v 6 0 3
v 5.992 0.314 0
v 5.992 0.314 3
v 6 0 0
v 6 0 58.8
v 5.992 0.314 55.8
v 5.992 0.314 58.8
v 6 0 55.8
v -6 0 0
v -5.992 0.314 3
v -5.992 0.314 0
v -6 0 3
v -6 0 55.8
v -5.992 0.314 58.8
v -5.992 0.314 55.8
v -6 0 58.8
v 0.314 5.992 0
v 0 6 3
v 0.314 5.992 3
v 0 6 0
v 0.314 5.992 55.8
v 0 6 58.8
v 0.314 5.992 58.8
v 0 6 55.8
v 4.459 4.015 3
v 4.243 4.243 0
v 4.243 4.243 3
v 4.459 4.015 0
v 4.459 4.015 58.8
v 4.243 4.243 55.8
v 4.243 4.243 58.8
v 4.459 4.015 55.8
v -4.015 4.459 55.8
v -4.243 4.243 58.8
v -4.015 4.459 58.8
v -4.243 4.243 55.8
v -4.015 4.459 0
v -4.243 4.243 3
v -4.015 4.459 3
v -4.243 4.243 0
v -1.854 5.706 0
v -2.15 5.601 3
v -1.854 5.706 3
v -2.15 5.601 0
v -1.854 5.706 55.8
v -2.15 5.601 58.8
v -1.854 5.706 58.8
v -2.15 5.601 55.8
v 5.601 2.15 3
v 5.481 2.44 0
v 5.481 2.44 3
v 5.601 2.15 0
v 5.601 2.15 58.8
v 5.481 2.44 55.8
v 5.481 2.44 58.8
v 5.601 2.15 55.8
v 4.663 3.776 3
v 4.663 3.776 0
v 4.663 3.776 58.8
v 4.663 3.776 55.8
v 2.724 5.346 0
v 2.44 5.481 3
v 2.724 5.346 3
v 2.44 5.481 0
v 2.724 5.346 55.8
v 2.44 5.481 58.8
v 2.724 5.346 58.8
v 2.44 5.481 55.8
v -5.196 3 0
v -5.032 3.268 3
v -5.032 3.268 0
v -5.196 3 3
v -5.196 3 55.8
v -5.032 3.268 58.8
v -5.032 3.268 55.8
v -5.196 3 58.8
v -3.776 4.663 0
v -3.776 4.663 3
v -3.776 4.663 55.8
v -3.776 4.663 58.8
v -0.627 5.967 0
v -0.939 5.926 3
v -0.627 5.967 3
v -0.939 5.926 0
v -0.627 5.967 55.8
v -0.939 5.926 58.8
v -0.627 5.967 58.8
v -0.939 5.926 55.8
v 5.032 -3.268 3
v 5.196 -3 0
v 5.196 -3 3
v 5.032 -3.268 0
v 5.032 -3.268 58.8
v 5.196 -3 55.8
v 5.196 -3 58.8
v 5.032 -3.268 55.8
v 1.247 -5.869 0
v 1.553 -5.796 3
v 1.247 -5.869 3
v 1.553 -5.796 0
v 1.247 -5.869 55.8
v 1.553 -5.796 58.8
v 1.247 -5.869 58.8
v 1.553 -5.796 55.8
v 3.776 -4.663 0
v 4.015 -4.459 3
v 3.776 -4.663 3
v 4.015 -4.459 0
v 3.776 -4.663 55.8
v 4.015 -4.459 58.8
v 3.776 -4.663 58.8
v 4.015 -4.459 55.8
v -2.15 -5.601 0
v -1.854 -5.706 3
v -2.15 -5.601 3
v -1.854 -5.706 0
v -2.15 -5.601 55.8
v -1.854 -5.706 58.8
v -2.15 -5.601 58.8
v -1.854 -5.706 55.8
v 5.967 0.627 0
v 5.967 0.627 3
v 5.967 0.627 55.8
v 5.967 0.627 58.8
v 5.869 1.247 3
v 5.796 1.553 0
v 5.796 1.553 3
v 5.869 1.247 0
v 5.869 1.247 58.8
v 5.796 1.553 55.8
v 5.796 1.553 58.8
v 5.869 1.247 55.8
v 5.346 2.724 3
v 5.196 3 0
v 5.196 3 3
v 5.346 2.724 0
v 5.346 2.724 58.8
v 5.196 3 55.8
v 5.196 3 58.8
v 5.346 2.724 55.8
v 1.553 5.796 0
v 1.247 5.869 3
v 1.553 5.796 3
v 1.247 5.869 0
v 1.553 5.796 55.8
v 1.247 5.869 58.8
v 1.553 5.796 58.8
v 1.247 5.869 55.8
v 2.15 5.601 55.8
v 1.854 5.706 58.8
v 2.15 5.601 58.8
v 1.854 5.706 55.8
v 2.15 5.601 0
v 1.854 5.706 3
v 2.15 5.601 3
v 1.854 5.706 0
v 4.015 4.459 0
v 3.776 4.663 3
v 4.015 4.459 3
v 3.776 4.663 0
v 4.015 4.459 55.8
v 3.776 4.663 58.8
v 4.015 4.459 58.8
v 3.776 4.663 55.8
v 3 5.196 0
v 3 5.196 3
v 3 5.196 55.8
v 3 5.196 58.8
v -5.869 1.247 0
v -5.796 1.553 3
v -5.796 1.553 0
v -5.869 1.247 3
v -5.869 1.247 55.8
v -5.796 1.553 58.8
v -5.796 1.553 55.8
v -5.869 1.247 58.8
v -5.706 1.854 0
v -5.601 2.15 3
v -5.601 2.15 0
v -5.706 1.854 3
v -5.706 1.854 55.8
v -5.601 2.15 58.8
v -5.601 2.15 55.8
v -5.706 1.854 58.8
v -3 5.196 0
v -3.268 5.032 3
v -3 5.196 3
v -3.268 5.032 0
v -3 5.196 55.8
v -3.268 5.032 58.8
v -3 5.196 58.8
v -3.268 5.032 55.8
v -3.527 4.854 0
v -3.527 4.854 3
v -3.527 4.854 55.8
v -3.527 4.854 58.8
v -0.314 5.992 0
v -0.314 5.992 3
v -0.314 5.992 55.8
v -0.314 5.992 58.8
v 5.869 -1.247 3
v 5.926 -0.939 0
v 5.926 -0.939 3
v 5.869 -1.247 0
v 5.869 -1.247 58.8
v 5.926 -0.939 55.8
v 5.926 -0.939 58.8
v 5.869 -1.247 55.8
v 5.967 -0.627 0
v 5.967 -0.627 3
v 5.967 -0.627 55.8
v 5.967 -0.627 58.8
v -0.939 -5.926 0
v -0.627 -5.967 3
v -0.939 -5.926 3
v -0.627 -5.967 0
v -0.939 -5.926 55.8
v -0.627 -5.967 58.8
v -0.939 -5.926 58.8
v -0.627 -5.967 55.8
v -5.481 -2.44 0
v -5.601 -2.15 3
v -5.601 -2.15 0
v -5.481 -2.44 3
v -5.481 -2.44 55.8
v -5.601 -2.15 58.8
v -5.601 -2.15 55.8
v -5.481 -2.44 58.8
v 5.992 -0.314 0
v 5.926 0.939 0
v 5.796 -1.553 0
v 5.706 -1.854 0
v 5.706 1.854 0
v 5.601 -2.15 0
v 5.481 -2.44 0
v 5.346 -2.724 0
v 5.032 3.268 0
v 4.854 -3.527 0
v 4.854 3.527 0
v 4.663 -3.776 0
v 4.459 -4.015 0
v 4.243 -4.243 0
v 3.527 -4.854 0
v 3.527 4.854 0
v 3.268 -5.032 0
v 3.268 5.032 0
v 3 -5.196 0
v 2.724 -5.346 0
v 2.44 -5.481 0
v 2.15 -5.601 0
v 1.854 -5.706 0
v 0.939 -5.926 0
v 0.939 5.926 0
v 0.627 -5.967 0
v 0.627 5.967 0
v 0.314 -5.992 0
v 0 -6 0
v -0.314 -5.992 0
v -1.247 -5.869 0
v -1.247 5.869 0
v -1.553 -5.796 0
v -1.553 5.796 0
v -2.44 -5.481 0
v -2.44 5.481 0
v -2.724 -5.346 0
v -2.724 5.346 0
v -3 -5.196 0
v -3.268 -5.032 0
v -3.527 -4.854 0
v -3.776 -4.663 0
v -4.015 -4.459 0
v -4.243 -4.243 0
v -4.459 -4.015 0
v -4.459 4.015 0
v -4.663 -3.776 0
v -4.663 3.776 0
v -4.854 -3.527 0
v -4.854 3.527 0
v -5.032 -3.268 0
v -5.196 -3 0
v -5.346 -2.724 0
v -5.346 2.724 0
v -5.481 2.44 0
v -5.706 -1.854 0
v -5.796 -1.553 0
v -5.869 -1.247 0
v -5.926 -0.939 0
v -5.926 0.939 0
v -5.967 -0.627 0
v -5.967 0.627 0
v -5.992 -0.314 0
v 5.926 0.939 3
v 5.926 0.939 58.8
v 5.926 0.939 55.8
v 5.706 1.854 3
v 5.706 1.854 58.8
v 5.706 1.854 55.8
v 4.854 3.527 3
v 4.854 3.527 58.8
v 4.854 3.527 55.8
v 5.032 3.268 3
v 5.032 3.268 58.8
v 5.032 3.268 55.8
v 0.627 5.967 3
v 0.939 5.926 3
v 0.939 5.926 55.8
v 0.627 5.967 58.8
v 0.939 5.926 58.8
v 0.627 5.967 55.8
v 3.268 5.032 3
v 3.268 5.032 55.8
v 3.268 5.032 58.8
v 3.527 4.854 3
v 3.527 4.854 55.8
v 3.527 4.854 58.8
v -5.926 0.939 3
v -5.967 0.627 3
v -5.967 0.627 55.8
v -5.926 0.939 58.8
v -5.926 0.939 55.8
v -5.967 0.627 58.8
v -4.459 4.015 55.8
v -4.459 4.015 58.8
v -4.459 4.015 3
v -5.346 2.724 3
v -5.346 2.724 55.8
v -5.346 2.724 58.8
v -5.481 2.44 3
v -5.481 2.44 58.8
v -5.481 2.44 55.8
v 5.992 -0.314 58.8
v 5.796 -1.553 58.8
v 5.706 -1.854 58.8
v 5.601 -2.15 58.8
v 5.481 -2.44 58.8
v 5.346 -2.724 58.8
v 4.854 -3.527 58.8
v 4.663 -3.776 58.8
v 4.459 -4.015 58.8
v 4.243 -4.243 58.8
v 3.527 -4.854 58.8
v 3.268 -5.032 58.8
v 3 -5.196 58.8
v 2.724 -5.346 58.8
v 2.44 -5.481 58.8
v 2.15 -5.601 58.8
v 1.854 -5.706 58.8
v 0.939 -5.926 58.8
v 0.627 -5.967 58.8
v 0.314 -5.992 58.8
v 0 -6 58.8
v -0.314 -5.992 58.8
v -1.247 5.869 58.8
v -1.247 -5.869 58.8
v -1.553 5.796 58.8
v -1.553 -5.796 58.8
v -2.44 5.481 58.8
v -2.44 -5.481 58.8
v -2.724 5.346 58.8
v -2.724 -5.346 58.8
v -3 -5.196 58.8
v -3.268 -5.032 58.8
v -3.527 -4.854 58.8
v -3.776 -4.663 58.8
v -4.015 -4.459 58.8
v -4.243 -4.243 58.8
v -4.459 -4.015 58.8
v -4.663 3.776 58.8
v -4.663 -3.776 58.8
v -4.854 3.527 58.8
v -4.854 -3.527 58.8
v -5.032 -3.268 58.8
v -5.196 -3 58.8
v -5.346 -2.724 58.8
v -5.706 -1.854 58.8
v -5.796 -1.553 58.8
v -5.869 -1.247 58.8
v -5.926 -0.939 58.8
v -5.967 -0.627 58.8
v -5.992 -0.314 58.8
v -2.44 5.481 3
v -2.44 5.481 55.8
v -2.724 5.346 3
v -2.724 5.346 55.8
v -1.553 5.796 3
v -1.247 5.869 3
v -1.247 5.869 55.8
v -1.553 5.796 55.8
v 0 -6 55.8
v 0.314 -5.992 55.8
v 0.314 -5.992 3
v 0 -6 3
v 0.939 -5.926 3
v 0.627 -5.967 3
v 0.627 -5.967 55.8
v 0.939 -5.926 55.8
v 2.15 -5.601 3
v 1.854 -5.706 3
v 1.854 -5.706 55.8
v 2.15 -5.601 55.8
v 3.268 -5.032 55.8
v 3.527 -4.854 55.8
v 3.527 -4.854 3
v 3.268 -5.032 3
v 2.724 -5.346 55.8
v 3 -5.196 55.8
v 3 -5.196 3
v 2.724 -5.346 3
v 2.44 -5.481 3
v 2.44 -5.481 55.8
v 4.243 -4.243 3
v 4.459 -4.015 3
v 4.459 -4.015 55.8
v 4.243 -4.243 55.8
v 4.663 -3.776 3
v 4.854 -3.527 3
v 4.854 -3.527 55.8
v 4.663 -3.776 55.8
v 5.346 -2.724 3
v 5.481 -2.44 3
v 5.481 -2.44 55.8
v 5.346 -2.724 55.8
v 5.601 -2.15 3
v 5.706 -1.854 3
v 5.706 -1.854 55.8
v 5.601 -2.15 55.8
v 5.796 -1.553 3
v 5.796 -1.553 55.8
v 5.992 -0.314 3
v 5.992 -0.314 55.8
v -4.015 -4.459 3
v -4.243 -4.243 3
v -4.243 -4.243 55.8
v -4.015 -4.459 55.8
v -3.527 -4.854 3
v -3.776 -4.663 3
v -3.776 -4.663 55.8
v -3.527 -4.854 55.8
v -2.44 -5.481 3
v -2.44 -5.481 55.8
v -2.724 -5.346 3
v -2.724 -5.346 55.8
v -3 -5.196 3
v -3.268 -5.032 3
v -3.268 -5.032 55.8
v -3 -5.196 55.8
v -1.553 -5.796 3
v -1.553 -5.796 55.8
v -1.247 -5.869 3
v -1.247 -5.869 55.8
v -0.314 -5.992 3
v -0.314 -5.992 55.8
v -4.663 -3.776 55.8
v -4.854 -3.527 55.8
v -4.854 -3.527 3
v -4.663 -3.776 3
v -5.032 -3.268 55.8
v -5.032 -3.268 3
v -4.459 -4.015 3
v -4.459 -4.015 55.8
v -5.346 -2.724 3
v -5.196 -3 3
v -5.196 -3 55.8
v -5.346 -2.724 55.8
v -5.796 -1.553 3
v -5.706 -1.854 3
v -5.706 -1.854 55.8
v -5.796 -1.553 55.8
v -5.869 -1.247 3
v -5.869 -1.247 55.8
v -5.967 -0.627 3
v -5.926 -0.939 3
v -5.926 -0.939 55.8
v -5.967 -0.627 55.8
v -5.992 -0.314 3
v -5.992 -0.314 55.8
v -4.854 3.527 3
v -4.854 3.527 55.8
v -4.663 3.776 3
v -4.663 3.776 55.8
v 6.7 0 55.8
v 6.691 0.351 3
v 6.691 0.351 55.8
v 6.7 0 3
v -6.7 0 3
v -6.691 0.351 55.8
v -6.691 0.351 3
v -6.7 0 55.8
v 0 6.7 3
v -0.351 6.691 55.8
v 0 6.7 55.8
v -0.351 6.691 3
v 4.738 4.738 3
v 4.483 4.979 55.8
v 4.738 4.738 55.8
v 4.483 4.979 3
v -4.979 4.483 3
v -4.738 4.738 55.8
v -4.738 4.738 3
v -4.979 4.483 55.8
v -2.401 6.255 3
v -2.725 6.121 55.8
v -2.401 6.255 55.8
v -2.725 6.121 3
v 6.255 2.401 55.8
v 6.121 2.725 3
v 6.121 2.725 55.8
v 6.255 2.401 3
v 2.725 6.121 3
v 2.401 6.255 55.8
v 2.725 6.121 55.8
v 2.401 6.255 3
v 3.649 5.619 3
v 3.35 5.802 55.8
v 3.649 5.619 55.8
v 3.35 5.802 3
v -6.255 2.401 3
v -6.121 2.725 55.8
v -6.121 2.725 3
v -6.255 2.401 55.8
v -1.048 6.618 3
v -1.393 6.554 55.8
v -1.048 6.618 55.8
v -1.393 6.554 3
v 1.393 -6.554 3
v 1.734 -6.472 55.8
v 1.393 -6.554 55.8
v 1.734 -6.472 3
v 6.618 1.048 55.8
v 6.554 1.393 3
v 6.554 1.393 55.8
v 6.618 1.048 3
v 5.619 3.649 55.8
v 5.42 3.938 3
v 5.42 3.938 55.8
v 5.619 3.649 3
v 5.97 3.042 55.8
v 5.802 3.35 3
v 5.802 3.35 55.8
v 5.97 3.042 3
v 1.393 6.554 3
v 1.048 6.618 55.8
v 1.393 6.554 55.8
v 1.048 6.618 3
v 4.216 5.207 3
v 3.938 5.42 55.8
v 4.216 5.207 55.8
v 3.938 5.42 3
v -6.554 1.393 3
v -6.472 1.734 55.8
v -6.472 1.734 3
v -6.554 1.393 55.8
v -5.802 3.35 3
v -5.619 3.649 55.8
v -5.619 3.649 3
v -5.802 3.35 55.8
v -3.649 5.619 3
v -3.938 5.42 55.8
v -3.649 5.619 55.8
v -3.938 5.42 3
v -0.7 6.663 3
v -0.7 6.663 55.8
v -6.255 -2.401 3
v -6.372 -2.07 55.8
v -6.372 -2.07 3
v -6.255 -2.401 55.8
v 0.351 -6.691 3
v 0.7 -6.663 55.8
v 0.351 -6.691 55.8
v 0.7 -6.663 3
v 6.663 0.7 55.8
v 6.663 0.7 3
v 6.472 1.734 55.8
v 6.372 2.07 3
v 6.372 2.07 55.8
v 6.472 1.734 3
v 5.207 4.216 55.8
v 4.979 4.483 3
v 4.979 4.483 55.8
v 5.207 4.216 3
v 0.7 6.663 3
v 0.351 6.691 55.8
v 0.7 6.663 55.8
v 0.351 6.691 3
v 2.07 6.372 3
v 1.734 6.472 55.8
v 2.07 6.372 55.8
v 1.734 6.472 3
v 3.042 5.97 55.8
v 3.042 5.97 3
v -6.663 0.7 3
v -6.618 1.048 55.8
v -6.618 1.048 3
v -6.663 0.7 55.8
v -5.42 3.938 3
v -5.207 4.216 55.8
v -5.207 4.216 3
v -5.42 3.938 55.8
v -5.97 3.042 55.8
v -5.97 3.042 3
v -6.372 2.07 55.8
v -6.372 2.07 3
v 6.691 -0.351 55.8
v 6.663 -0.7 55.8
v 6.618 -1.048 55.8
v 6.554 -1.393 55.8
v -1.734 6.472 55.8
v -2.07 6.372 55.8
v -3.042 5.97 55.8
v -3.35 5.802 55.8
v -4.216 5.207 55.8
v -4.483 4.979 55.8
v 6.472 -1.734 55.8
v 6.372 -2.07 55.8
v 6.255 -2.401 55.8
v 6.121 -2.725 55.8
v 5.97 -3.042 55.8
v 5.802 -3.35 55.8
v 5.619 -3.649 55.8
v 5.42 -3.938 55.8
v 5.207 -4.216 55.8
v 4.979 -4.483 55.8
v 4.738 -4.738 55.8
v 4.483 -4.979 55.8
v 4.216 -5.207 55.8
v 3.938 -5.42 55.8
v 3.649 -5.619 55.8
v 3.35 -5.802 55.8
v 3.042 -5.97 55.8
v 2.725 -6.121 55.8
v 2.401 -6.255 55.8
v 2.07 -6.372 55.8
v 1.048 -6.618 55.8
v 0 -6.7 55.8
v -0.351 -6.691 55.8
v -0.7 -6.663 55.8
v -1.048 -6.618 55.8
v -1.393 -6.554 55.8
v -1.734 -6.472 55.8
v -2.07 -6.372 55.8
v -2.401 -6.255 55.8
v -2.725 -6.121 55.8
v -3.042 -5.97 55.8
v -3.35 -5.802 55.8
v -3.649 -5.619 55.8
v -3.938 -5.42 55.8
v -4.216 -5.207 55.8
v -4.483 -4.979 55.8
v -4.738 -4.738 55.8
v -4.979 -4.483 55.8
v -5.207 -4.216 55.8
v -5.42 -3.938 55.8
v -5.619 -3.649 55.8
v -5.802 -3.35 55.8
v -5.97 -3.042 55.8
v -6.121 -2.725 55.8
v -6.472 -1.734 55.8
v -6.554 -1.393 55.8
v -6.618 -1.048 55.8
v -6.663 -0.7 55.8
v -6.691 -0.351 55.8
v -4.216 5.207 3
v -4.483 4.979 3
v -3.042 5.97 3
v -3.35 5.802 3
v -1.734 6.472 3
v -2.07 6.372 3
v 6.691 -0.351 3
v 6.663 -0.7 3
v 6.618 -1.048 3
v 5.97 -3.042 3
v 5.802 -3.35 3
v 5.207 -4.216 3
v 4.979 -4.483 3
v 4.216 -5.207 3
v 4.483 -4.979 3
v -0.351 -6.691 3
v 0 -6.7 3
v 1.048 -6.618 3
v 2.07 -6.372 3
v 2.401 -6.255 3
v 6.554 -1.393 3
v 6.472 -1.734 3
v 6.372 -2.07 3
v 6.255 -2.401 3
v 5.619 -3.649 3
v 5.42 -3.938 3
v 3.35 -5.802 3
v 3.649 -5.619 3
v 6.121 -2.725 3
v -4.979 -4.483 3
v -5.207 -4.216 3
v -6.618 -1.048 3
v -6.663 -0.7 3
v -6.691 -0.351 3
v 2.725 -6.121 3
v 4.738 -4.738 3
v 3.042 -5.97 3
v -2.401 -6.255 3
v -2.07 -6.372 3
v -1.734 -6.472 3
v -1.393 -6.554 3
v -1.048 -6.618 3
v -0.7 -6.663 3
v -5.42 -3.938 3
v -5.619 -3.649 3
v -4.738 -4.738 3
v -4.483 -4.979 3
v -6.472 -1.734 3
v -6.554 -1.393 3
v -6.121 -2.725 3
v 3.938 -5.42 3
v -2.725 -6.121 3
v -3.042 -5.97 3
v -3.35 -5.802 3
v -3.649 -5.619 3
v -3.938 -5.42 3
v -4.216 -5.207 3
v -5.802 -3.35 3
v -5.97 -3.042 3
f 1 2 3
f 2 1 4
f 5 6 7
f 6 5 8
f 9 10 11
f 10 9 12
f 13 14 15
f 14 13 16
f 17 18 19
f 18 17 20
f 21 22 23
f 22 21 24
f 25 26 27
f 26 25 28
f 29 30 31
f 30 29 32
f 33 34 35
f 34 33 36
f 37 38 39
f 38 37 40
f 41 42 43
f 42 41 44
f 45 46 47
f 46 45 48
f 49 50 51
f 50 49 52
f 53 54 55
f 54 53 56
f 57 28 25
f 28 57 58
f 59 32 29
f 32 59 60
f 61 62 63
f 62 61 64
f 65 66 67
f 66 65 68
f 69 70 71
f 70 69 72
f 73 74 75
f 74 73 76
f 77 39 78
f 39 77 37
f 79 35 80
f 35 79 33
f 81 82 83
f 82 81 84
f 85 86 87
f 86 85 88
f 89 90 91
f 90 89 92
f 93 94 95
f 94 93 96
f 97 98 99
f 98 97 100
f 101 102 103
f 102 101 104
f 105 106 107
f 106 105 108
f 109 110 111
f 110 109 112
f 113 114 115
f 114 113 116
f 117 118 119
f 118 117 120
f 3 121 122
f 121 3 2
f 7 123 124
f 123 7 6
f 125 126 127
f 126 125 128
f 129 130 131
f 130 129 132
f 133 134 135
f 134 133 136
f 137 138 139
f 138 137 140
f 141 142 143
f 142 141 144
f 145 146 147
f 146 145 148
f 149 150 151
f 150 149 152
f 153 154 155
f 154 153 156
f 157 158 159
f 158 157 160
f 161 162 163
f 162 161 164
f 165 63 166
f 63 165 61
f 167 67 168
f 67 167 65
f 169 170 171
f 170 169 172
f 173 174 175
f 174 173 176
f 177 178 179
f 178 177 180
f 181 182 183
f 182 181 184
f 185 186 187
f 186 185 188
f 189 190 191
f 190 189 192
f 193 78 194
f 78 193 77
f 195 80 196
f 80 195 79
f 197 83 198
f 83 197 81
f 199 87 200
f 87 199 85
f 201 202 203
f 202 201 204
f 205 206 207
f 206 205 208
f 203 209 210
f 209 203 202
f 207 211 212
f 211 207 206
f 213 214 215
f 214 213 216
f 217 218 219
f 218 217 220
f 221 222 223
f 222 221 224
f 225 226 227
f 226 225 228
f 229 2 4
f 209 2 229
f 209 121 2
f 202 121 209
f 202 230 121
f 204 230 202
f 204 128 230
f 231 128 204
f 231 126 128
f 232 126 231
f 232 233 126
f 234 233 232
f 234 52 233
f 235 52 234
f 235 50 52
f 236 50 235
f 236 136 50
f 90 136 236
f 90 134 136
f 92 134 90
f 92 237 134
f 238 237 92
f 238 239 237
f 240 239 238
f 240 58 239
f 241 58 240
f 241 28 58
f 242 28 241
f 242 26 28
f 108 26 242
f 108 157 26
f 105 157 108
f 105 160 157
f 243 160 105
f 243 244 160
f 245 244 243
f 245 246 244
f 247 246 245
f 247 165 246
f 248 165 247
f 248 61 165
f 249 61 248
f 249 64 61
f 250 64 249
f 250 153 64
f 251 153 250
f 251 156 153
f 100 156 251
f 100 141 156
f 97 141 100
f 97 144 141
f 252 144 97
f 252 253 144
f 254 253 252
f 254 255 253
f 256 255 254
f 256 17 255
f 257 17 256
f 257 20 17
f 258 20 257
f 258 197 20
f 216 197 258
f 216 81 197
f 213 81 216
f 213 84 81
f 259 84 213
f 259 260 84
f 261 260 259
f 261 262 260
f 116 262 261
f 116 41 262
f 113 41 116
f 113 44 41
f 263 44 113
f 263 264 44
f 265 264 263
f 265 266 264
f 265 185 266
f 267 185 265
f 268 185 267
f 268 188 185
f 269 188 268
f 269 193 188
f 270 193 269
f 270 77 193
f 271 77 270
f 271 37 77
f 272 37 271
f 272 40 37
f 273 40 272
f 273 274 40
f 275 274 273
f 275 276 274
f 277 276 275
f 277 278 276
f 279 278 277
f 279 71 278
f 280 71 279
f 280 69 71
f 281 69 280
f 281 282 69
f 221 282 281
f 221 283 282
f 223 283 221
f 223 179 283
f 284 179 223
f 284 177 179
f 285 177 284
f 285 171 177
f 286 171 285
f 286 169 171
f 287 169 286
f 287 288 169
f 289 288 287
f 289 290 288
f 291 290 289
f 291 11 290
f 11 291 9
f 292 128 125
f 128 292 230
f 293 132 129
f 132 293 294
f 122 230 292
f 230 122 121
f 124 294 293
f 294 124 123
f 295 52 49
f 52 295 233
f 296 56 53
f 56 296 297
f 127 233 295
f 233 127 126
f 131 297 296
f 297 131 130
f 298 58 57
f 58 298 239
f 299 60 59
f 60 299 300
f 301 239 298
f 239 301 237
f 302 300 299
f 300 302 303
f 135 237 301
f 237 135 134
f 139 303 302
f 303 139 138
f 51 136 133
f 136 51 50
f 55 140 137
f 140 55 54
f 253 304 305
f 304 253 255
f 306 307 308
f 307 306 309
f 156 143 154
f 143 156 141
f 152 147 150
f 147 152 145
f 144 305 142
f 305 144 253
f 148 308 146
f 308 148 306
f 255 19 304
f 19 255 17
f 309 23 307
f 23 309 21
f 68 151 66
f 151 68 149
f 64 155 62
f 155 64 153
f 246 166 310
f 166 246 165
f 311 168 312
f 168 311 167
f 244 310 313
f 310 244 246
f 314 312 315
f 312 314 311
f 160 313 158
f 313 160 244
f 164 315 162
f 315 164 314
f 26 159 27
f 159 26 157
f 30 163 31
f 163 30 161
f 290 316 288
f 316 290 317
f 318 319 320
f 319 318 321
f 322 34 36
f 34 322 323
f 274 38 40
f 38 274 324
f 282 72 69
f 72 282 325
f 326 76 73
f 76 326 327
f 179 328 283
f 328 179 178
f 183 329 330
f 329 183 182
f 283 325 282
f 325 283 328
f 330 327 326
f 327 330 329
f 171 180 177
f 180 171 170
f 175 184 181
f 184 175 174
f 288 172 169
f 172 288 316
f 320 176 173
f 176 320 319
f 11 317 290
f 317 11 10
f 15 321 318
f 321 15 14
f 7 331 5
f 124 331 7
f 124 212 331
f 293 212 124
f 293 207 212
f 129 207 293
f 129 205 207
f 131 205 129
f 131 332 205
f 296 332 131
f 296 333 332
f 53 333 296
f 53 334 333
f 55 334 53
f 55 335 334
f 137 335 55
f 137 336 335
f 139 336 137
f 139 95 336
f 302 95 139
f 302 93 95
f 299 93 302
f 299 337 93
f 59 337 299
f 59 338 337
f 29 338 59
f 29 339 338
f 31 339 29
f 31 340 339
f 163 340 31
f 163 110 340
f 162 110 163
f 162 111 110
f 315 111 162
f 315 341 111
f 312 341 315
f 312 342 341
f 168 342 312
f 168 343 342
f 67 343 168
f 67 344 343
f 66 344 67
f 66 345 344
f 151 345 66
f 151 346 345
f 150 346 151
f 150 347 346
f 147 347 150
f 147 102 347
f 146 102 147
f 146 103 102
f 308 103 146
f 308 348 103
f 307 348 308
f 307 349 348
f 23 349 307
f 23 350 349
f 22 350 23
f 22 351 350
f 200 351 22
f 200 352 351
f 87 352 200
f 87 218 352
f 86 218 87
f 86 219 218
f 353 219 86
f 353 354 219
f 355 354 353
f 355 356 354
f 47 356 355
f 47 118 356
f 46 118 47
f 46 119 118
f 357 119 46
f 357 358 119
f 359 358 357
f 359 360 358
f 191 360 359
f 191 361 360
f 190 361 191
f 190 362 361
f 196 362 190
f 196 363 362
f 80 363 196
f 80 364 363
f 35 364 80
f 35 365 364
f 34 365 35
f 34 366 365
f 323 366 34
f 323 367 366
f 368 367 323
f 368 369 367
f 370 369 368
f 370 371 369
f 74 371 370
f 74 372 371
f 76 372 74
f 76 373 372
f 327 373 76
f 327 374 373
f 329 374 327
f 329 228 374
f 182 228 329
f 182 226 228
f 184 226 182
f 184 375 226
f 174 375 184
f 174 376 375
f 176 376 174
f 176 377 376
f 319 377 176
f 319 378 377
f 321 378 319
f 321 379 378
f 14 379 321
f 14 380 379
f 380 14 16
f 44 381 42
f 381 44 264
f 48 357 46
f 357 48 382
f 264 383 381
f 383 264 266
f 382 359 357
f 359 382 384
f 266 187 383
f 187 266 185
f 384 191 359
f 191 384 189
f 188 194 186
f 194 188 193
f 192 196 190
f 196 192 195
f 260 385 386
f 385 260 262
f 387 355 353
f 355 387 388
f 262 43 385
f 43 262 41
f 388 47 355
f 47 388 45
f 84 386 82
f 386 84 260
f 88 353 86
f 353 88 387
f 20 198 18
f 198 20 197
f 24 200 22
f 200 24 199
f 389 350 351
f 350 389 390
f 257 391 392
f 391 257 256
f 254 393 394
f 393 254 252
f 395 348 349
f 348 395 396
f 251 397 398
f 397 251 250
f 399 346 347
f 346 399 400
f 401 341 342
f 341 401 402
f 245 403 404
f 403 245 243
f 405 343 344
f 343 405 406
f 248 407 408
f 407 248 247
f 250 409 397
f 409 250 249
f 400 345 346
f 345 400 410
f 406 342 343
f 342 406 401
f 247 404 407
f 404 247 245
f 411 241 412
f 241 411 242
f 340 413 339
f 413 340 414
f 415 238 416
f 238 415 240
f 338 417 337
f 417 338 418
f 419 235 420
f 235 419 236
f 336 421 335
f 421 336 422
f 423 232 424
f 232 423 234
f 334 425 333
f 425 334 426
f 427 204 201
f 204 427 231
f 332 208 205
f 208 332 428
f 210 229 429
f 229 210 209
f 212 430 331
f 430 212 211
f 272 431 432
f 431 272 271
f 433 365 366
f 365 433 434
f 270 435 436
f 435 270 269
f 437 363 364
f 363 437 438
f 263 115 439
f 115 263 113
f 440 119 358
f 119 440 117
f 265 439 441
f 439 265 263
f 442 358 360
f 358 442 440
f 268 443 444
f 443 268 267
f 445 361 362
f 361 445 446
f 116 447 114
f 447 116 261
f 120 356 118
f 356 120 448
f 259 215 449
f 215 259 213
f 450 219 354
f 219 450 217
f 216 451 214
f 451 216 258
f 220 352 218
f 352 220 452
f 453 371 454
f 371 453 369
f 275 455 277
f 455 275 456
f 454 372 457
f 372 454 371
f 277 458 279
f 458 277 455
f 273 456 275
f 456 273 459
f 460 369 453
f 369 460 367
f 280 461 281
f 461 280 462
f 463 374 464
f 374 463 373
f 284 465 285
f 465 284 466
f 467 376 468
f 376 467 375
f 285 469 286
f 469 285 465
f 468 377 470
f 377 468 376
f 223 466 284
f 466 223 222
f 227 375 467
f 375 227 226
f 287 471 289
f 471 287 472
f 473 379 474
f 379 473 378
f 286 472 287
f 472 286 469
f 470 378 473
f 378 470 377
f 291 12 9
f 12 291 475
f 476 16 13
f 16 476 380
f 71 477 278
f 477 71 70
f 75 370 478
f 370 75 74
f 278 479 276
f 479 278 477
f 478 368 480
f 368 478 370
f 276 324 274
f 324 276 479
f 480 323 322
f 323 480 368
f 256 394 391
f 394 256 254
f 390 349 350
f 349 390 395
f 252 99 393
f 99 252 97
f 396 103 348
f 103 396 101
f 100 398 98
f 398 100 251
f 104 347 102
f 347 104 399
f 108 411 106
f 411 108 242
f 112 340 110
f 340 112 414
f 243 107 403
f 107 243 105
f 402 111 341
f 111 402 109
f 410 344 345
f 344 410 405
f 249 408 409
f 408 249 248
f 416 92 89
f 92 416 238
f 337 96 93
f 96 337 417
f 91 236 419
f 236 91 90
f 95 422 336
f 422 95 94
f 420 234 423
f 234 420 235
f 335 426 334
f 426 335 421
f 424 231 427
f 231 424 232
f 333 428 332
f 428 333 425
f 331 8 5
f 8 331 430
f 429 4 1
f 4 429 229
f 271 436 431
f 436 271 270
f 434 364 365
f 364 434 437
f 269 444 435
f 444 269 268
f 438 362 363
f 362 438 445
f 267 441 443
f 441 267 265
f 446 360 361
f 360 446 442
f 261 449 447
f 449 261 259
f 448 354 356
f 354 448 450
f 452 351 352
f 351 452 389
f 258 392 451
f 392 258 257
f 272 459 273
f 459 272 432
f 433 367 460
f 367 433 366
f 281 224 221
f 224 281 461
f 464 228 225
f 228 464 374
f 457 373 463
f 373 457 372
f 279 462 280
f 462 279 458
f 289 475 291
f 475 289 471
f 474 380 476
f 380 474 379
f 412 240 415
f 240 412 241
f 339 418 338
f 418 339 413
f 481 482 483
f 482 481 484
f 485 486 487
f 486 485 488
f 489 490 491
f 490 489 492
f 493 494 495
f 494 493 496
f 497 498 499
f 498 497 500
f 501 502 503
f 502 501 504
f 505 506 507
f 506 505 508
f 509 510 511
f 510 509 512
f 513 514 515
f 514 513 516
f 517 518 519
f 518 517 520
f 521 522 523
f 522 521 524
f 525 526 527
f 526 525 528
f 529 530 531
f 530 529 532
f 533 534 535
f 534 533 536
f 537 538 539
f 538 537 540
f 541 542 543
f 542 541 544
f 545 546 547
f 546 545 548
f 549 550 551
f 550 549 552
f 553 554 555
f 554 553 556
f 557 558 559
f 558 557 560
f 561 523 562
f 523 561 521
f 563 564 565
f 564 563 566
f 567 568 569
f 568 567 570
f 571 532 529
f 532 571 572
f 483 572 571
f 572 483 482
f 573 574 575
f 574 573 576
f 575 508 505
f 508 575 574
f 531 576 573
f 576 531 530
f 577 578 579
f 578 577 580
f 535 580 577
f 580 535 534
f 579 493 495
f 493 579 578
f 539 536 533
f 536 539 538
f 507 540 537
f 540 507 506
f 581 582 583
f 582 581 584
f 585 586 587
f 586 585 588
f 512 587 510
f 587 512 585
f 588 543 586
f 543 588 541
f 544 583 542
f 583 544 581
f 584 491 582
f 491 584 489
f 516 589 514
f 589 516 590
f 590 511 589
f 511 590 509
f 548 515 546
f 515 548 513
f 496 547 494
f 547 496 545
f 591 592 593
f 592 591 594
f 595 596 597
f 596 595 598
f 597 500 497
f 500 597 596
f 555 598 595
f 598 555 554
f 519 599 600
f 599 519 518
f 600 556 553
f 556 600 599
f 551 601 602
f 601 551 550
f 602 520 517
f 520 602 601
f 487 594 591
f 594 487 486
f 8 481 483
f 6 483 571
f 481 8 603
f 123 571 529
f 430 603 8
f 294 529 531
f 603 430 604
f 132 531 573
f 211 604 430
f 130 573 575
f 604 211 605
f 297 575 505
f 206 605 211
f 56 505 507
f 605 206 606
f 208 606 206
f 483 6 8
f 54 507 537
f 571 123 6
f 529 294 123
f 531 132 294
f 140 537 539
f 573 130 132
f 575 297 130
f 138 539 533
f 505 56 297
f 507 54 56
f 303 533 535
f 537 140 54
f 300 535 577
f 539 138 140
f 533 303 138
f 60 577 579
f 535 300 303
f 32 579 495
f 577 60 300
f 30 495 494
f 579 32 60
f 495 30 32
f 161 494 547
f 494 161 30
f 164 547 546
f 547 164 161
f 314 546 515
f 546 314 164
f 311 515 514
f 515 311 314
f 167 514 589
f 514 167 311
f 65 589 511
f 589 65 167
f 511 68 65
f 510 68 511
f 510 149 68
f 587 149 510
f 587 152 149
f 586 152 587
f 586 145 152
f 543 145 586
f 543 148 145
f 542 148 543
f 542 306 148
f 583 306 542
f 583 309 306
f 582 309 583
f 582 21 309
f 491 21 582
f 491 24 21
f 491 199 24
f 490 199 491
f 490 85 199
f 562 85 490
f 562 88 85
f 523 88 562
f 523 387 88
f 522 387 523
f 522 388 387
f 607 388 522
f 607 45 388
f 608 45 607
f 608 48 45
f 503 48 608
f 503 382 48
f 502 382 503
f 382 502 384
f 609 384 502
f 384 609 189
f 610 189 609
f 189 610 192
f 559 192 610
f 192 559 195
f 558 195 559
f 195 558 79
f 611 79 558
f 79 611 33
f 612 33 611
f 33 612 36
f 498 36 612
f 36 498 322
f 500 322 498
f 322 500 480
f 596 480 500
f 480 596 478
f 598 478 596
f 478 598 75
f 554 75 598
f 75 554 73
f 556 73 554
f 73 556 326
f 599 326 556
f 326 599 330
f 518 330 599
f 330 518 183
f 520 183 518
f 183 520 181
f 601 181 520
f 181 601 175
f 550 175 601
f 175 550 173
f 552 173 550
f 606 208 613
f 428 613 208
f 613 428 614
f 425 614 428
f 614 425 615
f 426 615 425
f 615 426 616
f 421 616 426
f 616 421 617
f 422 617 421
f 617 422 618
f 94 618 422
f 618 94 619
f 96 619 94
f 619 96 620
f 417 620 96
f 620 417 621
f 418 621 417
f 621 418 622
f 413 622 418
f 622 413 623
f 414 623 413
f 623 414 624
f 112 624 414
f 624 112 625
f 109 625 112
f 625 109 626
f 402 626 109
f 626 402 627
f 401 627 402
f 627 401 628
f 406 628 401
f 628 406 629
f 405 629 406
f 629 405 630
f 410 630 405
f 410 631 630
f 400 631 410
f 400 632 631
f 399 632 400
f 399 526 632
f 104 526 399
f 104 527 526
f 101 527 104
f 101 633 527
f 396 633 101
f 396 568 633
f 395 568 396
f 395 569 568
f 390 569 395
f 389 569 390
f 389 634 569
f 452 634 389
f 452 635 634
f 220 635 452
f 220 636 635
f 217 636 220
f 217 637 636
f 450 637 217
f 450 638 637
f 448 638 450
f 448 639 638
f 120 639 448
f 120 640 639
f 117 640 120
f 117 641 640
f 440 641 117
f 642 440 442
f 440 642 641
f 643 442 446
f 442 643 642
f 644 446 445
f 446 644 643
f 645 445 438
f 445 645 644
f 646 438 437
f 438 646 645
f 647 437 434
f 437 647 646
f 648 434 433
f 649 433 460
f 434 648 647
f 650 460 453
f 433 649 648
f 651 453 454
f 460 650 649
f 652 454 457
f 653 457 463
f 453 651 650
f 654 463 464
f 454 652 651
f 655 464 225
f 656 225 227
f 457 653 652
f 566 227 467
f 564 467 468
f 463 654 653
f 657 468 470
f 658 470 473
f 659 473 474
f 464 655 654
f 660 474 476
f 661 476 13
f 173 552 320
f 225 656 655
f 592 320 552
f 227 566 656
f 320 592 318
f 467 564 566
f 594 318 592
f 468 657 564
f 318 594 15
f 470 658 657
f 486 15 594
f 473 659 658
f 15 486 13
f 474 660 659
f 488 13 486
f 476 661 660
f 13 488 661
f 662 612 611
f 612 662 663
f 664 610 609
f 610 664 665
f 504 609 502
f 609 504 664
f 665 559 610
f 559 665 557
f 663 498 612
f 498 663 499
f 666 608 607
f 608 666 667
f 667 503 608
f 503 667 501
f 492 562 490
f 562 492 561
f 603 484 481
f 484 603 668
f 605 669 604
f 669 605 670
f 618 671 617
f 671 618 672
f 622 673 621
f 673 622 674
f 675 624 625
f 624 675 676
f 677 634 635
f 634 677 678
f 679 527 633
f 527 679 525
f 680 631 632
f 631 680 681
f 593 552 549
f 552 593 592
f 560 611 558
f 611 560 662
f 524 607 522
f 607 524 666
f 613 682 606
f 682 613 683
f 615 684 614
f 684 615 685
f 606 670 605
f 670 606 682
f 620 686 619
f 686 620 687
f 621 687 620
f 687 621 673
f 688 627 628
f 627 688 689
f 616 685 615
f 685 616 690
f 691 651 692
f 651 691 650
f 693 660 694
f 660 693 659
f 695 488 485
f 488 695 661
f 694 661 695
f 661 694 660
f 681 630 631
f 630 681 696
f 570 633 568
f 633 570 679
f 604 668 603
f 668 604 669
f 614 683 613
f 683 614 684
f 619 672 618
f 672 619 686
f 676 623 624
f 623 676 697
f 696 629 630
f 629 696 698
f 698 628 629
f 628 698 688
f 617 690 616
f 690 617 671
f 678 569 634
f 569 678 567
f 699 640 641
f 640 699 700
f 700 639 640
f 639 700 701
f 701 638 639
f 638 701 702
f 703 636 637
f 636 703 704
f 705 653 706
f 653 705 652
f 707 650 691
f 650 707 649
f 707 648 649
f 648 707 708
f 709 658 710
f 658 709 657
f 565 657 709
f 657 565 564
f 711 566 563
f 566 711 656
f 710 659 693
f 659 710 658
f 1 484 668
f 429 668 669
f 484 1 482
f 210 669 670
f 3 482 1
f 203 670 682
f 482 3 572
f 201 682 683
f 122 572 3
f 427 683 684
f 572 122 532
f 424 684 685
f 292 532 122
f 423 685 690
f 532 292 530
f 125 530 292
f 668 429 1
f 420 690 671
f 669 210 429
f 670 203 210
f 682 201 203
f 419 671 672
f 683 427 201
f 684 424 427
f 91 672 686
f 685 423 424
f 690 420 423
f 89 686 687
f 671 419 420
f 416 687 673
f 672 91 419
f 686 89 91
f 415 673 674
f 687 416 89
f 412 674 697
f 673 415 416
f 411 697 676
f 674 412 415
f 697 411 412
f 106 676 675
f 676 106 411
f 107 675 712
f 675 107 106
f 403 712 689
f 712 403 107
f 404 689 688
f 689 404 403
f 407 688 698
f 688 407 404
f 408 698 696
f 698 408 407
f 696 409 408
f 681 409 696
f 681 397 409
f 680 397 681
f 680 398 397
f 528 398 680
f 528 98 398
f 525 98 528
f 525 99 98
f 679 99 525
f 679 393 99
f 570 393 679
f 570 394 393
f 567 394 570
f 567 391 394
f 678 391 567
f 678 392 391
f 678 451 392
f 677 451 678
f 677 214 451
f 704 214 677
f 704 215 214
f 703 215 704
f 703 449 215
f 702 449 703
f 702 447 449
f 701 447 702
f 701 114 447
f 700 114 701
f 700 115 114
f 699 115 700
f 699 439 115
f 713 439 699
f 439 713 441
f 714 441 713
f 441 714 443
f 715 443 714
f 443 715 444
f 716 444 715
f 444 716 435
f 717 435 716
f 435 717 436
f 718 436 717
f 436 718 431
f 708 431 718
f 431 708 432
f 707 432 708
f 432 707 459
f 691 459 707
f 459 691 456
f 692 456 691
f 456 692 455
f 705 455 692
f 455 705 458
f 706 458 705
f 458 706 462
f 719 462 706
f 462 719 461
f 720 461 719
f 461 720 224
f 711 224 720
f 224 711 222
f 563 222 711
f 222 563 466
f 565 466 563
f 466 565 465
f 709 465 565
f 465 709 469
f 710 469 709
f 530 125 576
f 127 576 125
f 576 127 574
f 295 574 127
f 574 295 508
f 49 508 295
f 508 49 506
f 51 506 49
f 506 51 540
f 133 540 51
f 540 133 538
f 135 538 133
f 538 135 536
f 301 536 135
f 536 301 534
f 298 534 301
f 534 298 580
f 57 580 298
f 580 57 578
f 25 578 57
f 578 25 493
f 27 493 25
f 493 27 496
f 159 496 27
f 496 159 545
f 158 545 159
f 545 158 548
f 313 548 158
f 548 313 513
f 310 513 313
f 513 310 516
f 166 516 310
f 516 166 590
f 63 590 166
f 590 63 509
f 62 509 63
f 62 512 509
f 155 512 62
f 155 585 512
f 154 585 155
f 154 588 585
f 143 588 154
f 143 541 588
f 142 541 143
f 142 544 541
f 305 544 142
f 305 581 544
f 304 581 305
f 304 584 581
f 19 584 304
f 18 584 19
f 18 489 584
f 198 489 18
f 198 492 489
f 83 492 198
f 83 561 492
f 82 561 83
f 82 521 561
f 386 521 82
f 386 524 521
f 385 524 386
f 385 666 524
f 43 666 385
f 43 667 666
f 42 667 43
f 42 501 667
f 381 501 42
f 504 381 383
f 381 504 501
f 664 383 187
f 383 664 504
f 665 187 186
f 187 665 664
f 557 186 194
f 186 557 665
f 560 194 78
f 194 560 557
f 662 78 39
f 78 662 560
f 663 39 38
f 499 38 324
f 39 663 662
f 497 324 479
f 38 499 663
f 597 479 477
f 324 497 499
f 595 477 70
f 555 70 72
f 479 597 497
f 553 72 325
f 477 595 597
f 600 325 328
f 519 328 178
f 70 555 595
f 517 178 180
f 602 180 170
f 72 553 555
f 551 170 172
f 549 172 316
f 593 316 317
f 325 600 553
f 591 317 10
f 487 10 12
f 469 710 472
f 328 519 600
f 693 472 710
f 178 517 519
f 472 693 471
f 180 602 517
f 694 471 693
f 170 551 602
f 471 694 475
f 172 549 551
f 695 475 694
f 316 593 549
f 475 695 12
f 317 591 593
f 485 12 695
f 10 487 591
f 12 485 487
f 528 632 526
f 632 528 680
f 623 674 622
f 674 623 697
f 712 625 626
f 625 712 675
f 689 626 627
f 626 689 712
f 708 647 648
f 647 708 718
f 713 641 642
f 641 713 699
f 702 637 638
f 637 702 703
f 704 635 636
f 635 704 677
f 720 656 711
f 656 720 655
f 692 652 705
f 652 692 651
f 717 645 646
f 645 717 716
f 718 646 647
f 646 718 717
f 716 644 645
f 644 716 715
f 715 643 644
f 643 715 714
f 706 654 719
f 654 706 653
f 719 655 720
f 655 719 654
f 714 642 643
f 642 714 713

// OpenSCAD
$fn = 120;
cylinder(r=6, h=58.8);

translate([0,0,3])
    cylinder(r=6.7, h=52.8);
